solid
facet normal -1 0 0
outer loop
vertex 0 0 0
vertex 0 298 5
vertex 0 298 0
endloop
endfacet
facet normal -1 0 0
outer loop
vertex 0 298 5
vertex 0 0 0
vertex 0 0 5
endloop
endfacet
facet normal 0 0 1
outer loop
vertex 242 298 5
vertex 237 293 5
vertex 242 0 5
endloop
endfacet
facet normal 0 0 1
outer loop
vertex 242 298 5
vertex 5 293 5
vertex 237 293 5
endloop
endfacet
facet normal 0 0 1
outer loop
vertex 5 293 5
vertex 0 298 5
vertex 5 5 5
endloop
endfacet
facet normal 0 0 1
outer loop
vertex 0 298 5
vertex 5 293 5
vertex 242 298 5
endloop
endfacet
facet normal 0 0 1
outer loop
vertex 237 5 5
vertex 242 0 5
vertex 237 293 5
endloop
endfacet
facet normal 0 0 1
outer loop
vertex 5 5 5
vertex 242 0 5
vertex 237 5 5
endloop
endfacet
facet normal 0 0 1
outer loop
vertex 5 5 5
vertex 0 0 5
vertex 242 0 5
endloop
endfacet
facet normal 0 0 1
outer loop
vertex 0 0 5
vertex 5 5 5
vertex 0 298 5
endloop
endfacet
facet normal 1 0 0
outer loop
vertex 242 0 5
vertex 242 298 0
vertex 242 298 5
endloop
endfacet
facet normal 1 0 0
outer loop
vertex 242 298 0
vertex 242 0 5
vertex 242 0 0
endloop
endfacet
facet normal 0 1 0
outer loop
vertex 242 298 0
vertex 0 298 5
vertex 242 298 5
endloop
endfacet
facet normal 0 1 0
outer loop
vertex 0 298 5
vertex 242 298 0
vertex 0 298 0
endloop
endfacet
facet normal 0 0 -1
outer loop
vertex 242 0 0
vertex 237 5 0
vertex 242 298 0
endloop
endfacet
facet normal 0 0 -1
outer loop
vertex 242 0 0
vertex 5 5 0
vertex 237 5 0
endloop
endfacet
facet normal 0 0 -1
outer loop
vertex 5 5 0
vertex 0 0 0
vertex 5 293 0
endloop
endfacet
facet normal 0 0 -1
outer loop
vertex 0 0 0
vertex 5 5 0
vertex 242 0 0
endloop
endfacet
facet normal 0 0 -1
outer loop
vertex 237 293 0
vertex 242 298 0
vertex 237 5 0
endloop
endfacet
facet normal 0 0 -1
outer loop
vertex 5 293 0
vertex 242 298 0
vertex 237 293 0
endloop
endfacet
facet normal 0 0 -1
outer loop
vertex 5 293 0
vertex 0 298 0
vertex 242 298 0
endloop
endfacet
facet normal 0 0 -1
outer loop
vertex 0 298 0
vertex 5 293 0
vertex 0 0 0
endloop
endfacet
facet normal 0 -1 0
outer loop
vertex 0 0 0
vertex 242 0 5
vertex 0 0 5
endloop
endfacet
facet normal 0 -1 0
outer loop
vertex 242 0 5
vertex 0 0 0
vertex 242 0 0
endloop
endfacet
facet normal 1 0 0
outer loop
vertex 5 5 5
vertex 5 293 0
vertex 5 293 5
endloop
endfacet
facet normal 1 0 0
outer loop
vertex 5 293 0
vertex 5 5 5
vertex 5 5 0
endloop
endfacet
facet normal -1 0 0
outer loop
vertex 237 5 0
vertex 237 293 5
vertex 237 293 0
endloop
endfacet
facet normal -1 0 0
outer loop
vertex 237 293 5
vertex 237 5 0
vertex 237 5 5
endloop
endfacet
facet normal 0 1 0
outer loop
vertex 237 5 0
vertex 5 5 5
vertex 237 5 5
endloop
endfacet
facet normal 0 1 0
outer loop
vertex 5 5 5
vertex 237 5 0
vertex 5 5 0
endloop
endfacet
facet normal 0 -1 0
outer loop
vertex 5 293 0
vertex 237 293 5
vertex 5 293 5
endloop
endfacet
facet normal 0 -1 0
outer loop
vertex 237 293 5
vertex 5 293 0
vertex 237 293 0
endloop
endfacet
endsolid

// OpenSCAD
$fn=200;

THICK = 5;

BOX_W = 232;
BOX_L = 288; //320;
BOX_H = 5;

TILE_L = 7;

difference() {
    cube(size = [
        BOX_W + (THICK * 2),
        BOX_L + (THICK * 2), 
        BOX_H]);

    translate([
        THICK, 
        THICK, 
        -10]) {
            
        cube(size = [
            BOX_W,
            BOX_L,
            100]);
    }
}
